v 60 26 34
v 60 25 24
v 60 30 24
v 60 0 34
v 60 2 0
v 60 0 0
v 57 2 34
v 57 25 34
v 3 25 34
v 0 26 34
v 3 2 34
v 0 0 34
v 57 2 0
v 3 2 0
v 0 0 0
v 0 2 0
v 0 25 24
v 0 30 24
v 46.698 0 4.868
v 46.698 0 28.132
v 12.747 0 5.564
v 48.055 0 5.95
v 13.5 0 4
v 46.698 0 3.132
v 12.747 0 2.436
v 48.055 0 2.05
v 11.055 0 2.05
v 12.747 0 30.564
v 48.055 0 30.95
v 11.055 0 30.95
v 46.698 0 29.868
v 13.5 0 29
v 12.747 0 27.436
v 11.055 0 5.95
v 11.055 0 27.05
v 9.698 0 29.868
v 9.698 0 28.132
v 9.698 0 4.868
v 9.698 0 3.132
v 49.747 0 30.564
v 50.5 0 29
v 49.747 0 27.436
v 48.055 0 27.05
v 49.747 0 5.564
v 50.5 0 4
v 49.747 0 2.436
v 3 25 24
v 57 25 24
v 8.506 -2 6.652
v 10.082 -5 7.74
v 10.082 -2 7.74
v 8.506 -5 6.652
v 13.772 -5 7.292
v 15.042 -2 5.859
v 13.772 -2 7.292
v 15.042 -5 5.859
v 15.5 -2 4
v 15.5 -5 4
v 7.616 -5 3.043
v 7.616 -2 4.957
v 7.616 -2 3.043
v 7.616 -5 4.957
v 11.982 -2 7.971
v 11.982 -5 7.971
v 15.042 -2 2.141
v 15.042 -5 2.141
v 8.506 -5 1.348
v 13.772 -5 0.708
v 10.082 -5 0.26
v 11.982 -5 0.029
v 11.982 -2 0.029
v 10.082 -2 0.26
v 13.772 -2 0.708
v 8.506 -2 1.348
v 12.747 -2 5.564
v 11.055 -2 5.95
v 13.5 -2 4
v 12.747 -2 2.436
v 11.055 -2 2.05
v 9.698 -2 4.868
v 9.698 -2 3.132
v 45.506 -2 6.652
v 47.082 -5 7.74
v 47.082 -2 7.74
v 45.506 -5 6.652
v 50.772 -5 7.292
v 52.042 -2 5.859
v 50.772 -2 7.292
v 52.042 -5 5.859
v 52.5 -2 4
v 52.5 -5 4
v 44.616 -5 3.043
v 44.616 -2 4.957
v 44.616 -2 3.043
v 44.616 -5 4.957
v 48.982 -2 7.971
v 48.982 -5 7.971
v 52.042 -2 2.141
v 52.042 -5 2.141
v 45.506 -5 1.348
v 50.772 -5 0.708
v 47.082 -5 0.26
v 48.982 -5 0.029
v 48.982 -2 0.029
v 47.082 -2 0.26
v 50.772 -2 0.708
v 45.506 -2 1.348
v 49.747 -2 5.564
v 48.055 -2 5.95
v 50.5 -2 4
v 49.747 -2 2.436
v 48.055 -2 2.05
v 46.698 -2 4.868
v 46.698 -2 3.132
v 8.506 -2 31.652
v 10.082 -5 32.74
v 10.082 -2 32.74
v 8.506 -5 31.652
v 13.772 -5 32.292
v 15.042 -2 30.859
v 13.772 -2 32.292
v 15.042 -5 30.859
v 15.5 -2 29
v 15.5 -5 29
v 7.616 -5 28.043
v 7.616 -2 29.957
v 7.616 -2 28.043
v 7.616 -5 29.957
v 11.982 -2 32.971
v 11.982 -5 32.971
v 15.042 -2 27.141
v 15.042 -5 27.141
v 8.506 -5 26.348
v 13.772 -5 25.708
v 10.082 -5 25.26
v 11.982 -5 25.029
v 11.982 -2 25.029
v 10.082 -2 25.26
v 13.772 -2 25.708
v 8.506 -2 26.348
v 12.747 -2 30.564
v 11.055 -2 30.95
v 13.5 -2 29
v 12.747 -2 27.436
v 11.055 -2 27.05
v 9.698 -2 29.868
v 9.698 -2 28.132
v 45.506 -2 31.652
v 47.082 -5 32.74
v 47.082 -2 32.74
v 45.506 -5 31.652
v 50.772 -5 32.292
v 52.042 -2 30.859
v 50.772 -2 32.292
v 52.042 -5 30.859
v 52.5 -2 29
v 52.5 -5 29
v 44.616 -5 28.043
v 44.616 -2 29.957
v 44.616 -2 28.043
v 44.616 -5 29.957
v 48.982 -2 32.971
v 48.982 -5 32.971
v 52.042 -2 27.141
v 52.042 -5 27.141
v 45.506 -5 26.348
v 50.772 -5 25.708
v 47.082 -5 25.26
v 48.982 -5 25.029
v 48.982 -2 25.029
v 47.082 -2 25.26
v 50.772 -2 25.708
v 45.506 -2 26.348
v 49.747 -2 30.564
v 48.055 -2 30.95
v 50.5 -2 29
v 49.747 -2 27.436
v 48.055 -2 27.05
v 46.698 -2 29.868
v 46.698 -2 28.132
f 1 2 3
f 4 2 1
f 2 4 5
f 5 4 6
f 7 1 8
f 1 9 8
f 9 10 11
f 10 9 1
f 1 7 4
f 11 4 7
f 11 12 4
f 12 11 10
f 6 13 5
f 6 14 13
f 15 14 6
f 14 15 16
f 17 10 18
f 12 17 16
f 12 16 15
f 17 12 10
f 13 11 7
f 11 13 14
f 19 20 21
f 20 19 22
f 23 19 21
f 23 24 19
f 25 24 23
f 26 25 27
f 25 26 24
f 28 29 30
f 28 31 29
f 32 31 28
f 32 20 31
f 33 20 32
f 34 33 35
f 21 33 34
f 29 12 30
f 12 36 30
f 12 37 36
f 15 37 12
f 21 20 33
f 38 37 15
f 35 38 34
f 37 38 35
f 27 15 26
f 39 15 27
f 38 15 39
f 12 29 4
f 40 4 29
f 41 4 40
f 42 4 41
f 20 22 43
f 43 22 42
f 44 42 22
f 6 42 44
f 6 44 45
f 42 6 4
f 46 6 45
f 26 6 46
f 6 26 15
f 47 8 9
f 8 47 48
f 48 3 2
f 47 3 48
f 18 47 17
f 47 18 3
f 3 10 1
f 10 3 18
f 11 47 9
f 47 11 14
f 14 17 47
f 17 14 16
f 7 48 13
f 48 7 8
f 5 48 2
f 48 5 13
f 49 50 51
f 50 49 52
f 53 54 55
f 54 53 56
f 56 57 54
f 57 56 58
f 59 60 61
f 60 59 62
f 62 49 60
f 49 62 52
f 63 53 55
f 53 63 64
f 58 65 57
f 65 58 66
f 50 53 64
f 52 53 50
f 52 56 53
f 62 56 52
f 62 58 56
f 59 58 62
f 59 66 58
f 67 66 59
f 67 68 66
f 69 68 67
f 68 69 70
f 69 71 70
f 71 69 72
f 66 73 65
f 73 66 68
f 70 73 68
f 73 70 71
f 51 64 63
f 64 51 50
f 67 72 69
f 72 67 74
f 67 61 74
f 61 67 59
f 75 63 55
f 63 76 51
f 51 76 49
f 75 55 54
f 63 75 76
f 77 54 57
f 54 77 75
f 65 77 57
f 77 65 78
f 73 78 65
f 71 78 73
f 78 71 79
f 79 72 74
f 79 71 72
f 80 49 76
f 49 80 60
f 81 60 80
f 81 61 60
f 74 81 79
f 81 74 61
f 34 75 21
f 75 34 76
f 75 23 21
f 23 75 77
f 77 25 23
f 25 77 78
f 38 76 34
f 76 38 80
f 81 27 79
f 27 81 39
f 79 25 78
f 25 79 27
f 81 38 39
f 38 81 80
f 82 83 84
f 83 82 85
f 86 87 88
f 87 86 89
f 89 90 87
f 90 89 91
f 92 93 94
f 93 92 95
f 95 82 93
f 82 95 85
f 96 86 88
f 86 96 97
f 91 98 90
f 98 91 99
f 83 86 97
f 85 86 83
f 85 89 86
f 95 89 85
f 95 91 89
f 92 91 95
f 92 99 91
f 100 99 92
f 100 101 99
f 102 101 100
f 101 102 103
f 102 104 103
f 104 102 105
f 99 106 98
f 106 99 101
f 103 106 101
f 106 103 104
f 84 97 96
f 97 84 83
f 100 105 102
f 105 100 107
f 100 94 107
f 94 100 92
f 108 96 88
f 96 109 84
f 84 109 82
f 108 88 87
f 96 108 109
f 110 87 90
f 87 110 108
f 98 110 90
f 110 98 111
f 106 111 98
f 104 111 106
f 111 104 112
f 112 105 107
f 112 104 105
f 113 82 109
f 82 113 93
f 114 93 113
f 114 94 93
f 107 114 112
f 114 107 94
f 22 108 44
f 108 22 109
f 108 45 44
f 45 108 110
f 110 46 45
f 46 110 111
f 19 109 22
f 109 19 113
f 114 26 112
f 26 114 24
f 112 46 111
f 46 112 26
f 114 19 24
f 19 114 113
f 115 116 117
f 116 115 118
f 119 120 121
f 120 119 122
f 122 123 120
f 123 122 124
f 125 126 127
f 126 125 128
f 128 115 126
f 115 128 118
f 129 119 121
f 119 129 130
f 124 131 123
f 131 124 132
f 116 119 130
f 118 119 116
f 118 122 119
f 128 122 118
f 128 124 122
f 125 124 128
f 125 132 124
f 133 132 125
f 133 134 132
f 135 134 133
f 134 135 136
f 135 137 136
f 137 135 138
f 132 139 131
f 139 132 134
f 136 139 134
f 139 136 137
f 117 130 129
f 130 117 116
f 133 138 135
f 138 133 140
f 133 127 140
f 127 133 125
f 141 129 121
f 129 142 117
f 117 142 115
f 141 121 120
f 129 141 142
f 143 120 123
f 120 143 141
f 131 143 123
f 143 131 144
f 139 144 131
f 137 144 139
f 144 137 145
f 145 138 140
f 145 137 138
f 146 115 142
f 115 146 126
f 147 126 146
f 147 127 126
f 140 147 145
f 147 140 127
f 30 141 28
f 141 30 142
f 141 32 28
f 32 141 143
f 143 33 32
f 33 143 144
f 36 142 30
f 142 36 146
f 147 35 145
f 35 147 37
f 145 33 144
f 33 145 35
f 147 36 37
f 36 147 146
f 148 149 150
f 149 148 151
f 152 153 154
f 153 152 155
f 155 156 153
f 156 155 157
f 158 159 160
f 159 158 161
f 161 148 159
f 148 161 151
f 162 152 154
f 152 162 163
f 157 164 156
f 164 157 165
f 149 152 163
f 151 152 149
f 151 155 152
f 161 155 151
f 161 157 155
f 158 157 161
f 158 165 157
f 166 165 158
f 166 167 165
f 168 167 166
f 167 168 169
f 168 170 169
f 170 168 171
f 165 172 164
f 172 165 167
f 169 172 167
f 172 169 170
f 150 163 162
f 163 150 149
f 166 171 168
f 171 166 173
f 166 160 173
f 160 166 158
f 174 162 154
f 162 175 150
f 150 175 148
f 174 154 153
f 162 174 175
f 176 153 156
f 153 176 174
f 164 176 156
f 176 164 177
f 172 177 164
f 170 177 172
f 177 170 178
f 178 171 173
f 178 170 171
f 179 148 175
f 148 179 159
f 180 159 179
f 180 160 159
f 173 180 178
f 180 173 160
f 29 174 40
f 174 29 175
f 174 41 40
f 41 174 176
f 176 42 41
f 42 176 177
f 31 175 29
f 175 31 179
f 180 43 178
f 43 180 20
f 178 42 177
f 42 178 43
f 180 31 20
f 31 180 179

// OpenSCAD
// file: modules/module_pegs.scad
module pegs_lux(width,rows)
{
    dia_knob    = 8;
    len_knob    = 3;
    dia_pin     = 4;
    wall        = 2;
    dist        = 37;
    height      = 25;
    
    pegs(dist,height,wall,dia_knob,len_knob,dia_pin,rows);
}

module pegs_hornbach(width,rows)
{
    dia_knob    = 8;
    len_knob    = 3;
    dia_pin     = 4;
    wall        = 2;
    dist        = 45;
    height      = 45;
    
    pegs(dist,height,wall,dia_knob,len_knob,dia_pin);
}

module pegs(dist,height,wall,dia_knob,len_knob,dia_pin,rows)
{
    for(off_y=[0:height:(rows-1)*height])
    {
        translate([dia_knob/2,0,off_y+dia_knob/2])
        {
            for(i=[0:dist:width-dia_knob])
            {
                translate([i+((width-dia_knob)%dist)/2,0,0])
                {
                    peg(wall,dia_knob,len_knob,dia_pin);
                }
            }
        }
    }
}

module peg(wall,dia_knob,len_knob,dia_pin)
{
    rotate([90,0,0])
    {
        translate([0,0,wall])
        {
            cylinder(h=len_knob,d=dia_knob);
        }
        translate([0,0,0])
        {
            cylinder(h=wall,d=dia_pin);
        }
    }
}
// file: modules/module_pliers.scad
module pliers(width,depth=30,height=40)
{
    height_bar = 10;
    depth_bar = 5;
    top_bar = 1;
    side_depth = 3;
    back_depth = 2;
    
    // backside
    cube([width,back_depth,height]);
    
    // front bar
    translate([0,depth-depth_bar,height-height_bar])
    {
        rotate([90,0,0])
        {
            rotate([0,90,0])
            {
                linear_extrude(width)
                {
                    polygon([[0,0],[0,height_bar],[top_bar,height_bar],[depth_bar,0]]);
                }
            }
        }
    }
    
    // side panels
    side_panel();
    translate([width-side_depth,0,0])
    {
        side_panel();
    }
    
    module side_panel()
    {
        translate([side_depth,0,0])
        {
            rotate([0,-90,0])
            {
                linear_extrude(side_depth)
                {
                    polygon([[0,0],
                             [height,0],
                             [height,depth-depth_bar+top_bar],
                             [height-height_bar,depth],
                             [height-height_bar,depth-depth_bar],
                             [0,back_depth]]);
                }
            }
        }
    }
}
// main file
include <modules/module_pliers.scad>
include <modules/module_pegs.scad>

width=60;
height=34;
depth=30;
rows=2;

pliers(width,depth,height);
pegs_lux(depth,rows);
